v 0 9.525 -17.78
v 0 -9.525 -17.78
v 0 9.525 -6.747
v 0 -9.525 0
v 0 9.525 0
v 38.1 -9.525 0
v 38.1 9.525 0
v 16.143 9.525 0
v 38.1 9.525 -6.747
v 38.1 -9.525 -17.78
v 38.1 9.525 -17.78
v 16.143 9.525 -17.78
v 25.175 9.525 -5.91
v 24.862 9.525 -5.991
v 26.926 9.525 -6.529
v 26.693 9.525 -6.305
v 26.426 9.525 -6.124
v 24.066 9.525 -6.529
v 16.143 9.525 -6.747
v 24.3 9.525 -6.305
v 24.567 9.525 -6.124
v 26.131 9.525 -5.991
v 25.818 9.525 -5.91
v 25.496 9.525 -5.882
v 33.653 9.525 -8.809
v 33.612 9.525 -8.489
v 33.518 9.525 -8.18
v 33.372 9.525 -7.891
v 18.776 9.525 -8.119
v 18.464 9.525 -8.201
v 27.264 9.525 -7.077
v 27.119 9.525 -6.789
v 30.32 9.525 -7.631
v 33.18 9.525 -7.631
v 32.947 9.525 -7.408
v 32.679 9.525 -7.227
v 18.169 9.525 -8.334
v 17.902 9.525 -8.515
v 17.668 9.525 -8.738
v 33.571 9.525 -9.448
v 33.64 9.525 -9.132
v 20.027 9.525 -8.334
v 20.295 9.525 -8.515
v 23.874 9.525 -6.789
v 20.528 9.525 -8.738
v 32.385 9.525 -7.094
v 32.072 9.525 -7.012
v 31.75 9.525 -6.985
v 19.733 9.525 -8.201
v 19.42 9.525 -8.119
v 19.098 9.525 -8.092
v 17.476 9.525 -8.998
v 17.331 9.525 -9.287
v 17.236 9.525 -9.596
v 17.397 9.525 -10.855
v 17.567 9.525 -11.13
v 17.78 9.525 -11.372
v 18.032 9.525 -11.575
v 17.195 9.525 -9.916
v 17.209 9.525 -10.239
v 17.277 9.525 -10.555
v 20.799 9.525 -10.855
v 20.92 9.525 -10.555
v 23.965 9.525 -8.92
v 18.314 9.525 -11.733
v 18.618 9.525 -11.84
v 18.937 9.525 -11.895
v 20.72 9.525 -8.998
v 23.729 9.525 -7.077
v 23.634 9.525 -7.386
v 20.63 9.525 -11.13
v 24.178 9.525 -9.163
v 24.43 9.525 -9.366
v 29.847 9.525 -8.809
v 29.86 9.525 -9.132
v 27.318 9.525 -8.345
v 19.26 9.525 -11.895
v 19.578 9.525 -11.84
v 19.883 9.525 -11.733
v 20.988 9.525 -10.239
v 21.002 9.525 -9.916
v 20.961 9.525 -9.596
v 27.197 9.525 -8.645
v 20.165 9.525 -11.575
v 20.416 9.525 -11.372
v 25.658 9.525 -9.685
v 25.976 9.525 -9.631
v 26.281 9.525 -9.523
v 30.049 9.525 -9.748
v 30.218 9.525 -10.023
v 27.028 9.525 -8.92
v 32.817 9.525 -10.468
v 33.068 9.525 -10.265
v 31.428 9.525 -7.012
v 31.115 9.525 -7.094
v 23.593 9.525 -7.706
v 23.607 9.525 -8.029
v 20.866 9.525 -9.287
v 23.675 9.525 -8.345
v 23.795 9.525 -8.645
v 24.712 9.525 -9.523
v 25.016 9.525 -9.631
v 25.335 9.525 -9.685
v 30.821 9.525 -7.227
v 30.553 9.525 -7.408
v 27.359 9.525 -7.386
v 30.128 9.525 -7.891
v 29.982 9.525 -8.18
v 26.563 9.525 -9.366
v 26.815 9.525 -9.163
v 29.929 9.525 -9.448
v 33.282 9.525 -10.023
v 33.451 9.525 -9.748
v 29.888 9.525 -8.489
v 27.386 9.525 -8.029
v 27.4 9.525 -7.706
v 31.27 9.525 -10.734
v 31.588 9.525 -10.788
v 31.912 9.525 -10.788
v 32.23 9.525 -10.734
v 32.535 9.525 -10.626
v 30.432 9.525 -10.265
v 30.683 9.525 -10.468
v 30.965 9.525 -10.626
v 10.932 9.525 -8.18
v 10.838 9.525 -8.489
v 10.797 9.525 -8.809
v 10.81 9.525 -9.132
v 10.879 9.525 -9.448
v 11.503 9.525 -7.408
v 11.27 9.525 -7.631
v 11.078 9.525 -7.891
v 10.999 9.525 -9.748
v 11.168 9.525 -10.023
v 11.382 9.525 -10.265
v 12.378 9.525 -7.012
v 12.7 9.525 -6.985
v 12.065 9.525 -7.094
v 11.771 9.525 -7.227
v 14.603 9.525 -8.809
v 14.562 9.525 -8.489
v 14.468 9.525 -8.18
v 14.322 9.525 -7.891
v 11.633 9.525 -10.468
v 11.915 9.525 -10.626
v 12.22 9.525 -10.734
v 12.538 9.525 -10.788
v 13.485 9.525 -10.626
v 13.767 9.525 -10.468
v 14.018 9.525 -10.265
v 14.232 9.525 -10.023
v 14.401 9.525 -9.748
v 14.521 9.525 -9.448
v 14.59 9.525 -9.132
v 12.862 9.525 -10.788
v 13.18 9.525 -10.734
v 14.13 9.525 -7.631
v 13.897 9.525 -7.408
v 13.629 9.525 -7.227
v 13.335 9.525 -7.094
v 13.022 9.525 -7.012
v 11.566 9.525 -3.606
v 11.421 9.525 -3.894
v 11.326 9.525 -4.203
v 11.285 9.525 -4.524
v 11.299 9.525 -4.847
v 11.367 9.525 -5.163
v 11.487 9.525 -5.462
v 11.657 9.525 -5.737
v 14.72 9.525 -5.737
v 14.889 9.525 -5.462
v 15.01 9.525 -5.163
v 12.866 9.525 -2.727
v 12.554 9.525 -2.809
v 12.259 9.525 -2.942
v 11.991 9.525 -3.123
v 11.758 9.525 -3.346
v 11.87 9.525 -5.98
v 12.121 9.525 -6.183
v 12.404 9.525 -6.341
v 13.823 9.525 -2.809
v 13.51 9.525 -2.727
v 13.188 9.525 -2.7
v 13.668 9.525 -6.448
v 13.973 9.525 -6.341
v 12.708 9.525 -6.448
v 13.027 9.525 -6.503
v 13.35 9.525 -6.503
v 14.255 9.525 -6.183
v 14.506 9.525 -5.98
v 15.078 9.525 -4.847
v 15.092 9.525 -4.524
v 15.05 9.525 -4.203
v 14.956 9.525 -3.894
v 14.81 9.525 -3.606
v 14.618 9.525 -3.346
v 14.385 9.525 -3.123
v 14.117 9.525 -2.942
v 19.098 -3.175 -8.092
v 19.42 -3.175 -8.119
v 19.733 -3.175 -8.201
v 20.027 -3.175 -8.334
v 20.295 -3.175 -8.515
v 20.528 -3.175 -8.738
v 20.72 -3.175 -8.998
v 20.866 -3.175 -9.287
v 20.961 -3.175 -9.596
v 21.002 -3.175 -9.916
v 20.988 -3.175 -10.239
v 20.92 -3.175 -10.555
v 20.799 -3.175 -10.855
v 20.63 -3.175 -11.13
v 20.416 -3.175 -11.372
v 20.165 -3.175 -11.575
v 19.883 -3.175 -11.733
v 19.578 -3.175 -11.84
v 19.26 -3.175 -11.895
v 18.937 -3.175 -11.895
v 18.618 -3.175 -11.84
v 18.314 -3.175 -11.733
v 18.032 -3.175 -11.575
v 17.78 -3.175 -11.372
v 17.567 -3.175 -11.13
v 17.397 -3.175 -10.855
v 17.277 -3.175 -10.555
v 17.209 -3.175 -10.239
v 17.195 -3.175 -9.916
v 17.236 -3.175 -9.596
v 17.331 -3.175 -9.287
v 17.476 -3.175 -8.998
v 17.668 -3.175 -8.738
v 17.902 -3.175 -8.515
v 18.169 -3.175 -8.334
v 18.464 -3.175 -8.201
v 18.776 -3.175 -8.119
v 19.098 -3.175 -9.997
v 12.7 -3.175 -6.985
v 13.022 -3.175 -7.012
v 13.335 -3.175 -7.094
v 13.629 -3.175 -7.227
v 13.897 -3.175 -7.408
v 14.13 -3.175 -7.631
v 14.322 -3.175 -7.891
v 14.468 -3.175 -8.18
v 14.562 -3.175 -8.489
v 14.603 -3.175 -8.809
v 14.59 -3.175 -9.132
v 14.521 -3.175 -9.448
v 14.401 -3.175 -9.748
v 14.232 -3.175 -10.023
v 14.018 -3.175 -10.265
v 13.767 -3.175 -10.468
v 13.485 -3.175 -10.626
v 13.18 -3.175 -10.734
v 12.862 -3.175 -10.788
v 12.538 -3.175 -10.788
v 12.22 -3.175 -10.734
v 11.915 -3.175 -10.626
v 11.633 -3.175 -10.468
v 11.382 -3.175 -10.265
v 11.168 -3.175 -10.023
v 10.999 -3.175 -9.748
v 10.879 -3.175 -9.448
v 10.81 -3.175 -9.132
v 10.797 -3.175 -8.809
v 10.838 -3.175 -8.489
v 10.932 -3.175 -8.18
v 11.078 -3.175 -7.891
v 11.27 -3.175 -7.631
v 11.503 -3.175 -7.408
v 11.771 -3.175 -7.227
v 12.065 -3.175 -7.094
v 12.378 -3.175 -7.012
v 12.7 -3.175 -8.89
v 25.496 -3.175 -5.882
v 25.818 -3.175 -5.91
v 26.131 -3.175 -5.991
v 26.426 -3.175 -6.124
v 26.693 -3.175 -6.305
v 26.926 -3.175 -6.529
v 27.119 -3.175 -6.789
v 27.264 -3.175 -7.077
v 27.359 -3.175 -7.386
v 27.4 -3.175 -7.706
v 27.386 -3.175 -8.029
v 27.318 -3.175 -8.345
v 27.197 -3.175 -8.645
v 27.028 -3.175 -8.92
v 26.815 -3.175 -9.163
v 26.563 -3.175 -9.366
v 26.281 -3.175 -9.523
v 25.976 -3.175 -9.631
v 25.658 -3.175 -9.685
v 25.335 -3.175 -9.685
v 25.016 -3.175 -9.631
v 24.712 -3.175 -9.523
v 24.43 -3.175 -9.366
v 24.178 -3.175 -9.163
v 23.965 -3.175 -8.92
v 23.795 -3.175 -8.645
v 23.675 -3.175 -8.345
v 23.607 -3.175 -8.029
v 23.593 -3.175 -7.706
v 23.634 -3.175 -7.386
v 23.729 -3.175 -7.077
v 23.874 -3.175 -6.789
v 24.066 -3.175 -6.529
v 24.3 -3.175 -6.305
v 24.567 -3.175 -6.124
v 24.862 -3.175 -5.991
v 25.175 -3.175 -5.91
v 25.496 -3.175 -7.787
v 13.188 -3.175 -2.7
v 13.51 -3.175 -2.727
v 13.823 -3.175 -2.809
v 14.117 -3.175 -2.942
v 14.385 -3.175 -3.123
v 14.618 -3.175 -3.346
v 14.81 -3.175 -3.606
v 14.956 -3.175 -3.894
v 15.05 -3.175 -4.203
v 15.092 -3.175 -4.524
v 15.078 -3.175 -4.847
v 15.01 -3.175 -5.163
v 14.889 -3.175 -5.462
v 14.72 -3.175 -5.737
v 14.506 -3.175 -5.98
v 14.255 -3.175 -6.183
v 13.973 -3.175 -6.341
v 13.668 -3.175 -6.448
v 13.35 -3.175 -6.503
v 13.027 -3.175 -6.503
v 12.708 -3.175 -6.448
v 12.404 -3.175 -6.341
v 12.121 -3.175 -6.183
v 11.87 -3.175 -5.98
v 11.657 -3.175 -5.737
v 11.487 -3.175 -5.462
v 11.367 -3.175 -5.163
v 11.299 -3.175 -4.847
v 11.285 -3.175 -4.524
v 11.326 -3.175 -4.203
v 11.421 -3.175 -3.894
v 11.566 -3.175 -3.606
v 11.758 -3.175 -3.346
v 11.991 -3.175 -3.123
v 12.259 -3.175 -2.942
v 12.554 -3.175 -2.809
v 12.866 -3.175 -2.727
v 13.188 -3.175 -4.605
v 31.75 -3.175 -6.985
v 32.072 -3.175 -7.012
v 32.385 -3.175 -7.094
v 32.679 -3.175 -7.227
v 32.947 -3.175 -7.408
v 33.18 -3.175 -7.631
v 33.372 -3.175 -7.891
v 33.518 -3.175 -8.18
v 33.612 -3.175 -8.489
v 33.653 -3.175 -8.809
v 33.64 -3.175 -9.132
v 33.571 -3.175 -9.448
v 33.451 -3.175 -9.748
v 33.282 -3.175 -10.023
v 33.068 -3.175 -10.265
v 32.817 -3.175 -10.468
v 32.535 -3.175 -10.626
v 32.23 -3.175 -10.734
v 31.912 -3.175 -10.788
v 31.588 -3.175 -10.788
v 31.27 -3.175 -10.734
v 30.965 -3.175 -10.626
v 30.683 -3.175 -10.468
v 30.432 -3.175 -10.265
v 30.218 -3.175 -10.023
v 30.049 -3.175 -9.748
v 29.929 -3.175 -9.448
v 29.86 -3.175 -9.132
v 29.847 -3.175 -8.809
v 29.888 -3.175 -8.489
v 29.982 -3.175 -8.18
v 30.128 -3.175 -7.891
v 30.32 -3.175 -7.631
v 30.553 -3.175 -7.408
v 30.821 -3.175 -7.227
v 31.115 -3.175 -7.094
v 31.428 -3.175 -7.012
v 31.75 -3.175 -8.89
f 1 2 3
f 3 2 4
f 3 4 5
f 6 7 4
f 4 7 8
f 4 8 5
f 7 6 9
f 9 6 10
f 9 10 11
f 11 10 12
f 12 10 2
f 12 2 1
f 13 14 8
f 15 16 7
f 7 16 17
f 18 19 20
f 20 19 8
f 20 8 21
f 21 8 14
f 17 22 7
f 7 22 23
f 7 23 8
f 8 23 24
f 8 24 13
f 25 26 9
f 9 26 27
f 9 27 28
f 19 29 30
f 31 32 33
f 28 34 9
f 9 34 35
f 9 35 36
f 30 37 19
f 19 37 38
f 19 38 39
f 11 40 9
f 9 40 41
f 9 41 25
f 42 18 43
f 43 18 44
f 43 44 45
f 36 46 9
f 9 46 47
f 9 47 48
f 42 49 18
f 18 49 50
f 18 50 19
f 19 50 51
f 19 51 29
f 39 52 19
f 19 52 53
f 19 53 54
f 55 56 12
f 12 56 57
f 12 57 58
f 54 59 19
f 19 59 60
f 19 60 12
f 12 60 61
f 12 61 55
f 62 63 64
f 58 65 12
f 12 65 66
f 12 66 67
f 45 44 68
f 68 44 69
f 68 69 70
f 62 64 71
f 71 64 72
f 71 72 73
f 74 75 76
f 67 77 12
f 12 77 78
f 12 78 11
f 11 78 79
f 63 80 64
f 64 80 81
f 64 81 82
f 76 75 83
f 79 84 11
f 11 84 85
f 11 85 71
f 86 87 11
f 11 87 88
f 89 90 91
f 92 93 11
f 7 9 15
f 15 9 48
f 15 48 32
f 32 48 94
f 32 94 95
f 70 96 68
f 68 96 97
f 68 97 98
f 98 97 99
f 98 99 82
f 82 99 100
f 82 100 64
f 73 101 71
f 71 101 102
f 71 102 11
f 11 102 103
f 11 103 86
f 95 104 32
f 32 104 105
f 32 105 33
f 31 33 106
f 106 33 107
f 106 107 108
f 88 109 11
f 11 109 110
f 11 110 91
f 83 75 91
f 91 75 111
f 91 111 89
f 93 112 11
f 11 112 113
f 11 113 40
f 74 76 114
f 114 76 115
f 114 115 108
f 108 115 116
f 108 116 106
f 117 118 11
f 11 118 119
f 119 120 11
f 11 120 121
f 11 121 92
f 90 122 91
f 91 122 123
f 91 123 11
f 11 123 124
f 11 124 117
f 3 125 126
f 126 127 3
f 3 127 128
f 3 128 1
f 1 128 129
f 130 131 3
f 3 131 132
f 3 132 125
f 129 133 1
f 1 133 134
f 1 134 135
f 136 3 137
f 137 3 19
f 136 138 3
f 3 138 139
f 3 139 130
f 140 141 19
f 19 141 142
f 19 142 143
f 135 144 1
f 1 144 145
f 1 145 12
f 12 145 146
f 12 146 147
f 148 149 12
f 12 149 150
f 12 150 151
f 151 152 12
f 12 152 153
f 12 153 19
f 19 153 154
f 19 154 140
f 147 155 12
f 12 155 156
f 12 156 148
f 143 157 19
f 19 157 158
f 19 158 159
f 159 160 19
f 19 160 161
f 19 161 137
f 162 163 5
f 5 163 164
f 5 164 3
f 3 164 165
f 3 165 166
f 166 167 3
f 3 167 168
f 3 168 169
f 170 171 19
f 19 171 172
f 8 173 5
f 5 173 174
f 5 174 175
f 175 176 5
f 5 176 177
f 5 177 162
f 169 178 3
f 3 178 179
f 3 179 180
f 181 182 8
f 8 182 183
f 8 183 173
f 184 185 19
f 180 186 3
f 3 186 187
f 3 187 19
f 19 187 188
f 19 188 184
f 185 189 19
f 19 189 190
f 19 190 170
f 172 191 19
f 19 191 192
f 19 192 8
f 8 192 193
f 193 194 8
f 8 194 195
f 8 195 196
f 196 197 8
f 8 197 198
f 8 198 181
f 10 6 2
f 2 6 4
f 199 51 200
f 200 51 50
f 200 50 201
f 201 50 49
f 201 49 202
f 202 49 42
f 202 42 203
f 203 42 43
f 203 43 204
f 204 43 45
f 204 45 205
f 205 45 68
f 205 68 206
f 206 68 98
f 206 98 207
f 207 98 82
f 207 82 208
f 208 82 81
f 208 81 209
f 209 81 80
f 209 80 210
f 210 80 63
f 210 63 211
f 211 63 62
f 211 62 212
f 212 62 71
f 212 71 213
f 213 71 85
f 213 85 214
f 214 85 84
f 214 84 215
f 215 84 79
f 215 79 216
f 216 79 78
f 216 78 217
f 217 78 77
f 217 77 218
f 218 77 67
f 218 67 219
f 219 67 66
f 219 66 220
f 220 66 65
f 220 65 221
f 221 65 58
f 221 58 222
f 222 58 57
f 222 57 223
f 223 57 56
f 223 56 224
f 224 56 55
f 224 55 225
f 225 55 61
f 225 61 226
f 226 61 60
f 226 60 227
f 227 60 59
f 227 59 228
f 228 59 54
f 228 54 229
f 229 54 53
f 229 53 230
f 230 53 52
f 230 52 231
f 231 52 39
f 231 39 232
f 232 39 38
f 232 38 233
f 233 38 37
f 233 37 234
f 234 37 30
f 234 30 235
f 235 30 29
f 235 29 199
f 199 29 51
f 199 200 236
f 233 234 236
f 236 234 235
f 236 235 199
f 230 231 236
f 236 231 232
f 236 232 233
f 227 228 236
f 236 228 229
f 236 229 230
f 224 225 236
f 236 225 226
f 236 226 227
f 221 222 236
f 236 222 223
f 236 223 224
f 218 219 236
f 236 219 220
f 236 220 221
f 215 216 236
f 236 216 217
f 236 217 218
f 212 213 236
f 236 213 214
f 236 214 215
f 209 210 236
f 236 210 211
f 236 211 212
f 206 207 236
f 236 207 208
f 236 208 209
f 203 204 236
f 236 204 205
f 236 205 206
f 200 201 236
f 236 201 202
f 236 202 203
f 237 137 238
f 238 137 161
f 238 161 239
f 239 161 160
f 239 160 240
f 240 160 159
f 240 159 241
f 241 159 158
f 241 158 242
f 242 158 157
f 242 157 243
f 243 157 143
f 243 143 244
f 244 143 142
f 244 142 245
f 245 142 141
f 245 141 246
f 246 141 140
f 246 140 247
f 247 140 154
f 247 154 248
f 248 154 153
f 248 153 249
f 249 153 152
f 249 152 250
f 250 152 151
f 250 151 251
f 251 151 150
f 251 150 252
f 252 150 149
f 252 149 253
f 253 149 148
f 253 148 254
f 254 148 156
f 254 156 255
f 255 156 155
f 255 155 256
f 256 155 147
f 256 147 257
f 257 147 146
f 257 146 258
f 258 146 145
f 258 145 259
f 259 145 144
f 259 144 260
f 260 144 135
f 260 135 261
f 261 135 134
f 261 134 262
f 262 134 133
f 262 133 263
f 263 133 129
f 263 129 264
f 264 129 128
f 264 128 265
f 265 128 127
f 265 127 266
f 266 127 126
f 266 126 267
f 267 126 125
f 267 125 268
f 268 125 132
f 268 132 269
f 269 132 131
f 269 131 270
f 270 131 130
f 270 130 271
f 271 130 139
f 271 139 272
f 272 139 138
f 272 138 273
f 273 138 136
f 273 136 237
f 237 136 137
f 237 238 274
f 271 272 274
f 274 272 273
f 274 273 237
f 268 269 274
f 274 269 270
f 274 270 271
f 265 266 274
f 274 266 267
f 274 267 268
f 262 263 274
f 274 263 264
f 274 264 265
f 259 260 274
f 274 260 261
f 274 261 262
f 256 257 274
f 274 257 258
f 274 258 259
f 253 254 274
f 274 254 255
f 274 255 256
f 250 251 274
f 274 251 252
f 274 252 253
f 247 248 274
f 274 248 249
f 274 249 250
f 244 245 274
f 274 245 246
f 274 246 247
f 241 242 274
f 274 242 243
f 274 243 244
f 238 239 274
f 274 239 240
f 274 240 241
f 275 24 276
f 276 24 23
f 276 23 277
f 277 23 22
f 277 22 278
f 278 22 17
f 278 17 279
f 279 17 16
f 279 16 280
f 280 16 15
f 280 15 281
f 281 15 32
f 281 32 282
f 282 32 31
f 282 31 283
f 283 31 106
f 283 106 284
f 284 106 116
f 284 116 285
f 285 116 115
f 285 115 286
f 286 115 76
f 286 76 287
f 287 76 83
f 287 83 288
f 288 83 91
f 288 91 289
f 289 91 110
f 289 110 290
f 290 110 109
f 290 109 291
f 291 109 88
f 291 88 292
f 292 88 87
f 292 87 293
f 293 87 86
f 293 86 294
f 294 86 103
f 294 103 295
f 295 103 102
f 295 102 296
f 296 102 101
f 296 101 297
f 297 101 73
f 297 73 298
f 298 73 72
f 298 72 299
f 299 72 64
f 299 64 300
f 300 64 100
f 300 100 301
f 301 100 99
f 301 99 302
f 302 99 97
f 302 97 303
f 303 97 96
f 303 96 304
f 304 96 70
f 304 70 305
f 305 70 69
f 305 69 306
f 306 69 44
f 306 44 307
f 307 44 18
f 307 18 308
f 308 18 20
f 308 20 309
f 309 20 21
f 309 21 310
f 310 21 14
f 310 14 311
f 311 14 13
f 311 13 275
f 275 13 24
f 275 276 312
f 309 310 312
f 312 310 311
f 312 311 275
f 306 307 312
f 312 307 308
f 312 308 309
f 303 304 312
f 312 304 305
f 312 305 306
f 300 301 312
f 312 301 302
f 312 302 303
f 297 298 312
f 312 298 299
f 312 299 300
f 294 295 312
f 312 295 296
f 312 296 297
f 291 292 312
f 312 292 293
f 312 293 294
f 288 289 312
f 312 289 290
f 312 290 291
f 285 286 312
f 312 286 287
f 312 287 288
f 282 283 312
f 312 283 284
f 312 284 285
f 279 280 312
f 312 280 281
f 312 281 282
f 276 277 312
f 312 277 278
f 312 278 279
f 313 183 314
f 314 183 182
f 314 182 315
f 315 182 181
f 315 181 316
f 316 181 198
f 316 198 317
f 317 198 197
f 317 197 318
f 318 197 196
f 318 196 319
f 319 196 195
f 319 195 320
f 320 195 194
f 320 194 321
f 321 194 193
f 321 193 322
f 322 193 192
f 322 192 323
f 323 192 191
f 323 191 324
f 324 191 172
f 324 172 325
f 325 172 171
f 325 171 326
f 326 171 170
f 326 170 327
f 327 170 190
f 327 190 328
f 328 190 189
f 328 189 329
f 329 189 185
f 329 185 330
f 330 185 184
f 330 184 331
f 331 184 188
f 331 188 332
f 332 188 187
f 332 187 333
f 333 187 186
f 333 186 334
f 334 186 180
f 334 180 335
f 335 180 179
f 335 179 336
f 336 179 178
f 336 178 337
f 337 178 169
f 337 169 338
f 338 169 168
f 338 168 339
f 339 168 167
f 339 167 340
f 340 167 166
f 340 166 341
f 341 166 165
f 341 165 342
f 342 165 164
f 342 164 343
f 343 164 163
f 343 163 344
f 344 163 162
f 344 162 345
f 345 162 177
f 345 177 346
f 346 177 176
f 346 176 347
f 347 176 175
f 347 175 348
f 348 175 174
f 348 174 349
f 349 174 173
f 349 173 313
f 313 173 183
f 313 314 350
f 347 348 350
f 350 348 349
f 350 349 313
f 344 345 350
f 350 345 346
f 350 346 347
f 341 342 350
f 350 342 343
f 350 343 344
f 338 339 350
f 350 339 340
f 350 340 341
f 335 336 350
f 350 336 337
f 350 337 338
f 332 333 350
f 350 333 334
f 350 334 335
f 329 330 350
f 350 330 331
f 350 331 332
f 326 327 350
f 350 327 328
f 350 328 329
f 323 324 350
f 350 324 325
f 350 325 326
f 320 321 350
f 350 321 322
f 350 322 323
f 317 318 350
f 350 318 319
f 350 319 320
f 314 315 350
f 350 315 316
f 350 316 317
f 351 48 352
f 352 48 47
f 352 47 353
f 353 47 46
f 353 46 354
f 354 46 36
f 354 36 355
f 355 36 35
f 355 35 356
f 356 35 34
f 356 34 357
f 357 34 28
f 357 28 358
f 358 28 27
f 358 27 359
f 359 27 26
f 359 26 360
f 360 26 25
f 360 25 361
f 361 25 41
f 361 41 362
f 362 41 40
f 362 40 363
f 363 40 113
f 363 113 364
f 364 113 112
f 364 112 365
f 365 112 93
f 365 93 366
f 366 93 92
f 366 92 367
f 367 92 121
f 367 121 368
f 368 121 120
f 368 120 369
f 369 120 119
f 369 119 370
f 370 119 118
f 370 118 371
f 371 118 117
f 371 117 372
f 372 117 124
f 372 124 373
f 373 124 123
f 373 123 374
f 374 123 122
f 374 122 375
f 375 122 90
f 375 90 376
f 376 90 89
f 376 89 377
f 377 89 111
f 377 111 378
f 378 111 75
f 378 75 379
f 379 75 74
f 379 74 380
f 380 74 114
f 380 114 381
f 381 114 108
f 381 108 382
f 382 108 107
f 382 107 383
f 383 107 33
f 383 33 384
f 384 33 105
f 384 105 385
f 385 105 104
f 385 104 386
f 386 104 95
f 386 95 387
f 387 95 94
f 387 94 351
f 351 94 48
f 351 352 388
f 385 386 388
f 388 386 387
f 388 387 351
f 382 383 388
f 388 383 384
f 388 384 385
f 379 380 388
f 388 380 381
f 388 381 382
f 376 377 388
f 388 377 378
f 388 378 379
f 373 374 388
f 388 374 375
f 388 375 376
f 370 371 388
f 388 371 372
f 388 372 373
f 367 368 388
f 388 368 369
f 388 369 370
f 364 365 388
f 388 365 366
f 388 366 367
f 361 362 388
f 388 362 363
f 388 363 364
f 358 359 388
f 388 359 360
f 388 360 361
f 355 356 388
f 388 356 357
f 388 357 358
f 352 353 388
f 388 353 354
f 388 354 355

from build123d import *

# Parameters (mm, degrees)
SKETCH1_W           = 38.1
SKETCH1_H           = 17.78
BOSS_EXTRUDE1_DEPTH = 9.525
SKETCH2_R           = 1.905
CUT_EXTRUDE1_DEPTH  = 12.7


with BuildPart() as part:
    # Sketch1 → Boss-Extrude1 (new, symmetric)
    with BuildSketch(Plane(origin=(0, 0, 0), x_dir=(1, 0, 0), z_dir=(0, 1, 0))):
        with Locations((19.05, 8.89)):
            Rectangle(SKETCH1_W, SKETCH1_H)
    extrude(amount=BOSS_EXTRUDE1_DEPTH, both=True)

    # Sketch2 → Cut-Extrude1 (cut)
    with BuildSketch(Plane(origin=(0, 9.525, 0), x_dir=(1, 0, 0), z_dir=(0, 1, 0))):
        with Locations(Location((31.75, 8.89, 0), (0, 0, 270))):
            Circle(SKETCH2_R)
        with Locations(Location((19.098327334, 9.996877933, 0), (0, 0, 270))):
            Circle(SKETCH2_R)
        with Locations(Location((12.7, 8.89, 0), (0, 0, 270))):
            Circle(SKETCH2_R)
        with Locations(Location((25.496470768, 7.787334072, 0), (0, 0, 270))):
            Circle(SKETCH2_R)
        with Locations(Location((13.188250266, 4.604682415, 0), (0, 0, 270))):
            Circle(SKETCH2_R)
    extrude(amount=-CUT_EXTRUDE1_DEPTH, mode=Mode.SUBTRACT)


solid = part.part
